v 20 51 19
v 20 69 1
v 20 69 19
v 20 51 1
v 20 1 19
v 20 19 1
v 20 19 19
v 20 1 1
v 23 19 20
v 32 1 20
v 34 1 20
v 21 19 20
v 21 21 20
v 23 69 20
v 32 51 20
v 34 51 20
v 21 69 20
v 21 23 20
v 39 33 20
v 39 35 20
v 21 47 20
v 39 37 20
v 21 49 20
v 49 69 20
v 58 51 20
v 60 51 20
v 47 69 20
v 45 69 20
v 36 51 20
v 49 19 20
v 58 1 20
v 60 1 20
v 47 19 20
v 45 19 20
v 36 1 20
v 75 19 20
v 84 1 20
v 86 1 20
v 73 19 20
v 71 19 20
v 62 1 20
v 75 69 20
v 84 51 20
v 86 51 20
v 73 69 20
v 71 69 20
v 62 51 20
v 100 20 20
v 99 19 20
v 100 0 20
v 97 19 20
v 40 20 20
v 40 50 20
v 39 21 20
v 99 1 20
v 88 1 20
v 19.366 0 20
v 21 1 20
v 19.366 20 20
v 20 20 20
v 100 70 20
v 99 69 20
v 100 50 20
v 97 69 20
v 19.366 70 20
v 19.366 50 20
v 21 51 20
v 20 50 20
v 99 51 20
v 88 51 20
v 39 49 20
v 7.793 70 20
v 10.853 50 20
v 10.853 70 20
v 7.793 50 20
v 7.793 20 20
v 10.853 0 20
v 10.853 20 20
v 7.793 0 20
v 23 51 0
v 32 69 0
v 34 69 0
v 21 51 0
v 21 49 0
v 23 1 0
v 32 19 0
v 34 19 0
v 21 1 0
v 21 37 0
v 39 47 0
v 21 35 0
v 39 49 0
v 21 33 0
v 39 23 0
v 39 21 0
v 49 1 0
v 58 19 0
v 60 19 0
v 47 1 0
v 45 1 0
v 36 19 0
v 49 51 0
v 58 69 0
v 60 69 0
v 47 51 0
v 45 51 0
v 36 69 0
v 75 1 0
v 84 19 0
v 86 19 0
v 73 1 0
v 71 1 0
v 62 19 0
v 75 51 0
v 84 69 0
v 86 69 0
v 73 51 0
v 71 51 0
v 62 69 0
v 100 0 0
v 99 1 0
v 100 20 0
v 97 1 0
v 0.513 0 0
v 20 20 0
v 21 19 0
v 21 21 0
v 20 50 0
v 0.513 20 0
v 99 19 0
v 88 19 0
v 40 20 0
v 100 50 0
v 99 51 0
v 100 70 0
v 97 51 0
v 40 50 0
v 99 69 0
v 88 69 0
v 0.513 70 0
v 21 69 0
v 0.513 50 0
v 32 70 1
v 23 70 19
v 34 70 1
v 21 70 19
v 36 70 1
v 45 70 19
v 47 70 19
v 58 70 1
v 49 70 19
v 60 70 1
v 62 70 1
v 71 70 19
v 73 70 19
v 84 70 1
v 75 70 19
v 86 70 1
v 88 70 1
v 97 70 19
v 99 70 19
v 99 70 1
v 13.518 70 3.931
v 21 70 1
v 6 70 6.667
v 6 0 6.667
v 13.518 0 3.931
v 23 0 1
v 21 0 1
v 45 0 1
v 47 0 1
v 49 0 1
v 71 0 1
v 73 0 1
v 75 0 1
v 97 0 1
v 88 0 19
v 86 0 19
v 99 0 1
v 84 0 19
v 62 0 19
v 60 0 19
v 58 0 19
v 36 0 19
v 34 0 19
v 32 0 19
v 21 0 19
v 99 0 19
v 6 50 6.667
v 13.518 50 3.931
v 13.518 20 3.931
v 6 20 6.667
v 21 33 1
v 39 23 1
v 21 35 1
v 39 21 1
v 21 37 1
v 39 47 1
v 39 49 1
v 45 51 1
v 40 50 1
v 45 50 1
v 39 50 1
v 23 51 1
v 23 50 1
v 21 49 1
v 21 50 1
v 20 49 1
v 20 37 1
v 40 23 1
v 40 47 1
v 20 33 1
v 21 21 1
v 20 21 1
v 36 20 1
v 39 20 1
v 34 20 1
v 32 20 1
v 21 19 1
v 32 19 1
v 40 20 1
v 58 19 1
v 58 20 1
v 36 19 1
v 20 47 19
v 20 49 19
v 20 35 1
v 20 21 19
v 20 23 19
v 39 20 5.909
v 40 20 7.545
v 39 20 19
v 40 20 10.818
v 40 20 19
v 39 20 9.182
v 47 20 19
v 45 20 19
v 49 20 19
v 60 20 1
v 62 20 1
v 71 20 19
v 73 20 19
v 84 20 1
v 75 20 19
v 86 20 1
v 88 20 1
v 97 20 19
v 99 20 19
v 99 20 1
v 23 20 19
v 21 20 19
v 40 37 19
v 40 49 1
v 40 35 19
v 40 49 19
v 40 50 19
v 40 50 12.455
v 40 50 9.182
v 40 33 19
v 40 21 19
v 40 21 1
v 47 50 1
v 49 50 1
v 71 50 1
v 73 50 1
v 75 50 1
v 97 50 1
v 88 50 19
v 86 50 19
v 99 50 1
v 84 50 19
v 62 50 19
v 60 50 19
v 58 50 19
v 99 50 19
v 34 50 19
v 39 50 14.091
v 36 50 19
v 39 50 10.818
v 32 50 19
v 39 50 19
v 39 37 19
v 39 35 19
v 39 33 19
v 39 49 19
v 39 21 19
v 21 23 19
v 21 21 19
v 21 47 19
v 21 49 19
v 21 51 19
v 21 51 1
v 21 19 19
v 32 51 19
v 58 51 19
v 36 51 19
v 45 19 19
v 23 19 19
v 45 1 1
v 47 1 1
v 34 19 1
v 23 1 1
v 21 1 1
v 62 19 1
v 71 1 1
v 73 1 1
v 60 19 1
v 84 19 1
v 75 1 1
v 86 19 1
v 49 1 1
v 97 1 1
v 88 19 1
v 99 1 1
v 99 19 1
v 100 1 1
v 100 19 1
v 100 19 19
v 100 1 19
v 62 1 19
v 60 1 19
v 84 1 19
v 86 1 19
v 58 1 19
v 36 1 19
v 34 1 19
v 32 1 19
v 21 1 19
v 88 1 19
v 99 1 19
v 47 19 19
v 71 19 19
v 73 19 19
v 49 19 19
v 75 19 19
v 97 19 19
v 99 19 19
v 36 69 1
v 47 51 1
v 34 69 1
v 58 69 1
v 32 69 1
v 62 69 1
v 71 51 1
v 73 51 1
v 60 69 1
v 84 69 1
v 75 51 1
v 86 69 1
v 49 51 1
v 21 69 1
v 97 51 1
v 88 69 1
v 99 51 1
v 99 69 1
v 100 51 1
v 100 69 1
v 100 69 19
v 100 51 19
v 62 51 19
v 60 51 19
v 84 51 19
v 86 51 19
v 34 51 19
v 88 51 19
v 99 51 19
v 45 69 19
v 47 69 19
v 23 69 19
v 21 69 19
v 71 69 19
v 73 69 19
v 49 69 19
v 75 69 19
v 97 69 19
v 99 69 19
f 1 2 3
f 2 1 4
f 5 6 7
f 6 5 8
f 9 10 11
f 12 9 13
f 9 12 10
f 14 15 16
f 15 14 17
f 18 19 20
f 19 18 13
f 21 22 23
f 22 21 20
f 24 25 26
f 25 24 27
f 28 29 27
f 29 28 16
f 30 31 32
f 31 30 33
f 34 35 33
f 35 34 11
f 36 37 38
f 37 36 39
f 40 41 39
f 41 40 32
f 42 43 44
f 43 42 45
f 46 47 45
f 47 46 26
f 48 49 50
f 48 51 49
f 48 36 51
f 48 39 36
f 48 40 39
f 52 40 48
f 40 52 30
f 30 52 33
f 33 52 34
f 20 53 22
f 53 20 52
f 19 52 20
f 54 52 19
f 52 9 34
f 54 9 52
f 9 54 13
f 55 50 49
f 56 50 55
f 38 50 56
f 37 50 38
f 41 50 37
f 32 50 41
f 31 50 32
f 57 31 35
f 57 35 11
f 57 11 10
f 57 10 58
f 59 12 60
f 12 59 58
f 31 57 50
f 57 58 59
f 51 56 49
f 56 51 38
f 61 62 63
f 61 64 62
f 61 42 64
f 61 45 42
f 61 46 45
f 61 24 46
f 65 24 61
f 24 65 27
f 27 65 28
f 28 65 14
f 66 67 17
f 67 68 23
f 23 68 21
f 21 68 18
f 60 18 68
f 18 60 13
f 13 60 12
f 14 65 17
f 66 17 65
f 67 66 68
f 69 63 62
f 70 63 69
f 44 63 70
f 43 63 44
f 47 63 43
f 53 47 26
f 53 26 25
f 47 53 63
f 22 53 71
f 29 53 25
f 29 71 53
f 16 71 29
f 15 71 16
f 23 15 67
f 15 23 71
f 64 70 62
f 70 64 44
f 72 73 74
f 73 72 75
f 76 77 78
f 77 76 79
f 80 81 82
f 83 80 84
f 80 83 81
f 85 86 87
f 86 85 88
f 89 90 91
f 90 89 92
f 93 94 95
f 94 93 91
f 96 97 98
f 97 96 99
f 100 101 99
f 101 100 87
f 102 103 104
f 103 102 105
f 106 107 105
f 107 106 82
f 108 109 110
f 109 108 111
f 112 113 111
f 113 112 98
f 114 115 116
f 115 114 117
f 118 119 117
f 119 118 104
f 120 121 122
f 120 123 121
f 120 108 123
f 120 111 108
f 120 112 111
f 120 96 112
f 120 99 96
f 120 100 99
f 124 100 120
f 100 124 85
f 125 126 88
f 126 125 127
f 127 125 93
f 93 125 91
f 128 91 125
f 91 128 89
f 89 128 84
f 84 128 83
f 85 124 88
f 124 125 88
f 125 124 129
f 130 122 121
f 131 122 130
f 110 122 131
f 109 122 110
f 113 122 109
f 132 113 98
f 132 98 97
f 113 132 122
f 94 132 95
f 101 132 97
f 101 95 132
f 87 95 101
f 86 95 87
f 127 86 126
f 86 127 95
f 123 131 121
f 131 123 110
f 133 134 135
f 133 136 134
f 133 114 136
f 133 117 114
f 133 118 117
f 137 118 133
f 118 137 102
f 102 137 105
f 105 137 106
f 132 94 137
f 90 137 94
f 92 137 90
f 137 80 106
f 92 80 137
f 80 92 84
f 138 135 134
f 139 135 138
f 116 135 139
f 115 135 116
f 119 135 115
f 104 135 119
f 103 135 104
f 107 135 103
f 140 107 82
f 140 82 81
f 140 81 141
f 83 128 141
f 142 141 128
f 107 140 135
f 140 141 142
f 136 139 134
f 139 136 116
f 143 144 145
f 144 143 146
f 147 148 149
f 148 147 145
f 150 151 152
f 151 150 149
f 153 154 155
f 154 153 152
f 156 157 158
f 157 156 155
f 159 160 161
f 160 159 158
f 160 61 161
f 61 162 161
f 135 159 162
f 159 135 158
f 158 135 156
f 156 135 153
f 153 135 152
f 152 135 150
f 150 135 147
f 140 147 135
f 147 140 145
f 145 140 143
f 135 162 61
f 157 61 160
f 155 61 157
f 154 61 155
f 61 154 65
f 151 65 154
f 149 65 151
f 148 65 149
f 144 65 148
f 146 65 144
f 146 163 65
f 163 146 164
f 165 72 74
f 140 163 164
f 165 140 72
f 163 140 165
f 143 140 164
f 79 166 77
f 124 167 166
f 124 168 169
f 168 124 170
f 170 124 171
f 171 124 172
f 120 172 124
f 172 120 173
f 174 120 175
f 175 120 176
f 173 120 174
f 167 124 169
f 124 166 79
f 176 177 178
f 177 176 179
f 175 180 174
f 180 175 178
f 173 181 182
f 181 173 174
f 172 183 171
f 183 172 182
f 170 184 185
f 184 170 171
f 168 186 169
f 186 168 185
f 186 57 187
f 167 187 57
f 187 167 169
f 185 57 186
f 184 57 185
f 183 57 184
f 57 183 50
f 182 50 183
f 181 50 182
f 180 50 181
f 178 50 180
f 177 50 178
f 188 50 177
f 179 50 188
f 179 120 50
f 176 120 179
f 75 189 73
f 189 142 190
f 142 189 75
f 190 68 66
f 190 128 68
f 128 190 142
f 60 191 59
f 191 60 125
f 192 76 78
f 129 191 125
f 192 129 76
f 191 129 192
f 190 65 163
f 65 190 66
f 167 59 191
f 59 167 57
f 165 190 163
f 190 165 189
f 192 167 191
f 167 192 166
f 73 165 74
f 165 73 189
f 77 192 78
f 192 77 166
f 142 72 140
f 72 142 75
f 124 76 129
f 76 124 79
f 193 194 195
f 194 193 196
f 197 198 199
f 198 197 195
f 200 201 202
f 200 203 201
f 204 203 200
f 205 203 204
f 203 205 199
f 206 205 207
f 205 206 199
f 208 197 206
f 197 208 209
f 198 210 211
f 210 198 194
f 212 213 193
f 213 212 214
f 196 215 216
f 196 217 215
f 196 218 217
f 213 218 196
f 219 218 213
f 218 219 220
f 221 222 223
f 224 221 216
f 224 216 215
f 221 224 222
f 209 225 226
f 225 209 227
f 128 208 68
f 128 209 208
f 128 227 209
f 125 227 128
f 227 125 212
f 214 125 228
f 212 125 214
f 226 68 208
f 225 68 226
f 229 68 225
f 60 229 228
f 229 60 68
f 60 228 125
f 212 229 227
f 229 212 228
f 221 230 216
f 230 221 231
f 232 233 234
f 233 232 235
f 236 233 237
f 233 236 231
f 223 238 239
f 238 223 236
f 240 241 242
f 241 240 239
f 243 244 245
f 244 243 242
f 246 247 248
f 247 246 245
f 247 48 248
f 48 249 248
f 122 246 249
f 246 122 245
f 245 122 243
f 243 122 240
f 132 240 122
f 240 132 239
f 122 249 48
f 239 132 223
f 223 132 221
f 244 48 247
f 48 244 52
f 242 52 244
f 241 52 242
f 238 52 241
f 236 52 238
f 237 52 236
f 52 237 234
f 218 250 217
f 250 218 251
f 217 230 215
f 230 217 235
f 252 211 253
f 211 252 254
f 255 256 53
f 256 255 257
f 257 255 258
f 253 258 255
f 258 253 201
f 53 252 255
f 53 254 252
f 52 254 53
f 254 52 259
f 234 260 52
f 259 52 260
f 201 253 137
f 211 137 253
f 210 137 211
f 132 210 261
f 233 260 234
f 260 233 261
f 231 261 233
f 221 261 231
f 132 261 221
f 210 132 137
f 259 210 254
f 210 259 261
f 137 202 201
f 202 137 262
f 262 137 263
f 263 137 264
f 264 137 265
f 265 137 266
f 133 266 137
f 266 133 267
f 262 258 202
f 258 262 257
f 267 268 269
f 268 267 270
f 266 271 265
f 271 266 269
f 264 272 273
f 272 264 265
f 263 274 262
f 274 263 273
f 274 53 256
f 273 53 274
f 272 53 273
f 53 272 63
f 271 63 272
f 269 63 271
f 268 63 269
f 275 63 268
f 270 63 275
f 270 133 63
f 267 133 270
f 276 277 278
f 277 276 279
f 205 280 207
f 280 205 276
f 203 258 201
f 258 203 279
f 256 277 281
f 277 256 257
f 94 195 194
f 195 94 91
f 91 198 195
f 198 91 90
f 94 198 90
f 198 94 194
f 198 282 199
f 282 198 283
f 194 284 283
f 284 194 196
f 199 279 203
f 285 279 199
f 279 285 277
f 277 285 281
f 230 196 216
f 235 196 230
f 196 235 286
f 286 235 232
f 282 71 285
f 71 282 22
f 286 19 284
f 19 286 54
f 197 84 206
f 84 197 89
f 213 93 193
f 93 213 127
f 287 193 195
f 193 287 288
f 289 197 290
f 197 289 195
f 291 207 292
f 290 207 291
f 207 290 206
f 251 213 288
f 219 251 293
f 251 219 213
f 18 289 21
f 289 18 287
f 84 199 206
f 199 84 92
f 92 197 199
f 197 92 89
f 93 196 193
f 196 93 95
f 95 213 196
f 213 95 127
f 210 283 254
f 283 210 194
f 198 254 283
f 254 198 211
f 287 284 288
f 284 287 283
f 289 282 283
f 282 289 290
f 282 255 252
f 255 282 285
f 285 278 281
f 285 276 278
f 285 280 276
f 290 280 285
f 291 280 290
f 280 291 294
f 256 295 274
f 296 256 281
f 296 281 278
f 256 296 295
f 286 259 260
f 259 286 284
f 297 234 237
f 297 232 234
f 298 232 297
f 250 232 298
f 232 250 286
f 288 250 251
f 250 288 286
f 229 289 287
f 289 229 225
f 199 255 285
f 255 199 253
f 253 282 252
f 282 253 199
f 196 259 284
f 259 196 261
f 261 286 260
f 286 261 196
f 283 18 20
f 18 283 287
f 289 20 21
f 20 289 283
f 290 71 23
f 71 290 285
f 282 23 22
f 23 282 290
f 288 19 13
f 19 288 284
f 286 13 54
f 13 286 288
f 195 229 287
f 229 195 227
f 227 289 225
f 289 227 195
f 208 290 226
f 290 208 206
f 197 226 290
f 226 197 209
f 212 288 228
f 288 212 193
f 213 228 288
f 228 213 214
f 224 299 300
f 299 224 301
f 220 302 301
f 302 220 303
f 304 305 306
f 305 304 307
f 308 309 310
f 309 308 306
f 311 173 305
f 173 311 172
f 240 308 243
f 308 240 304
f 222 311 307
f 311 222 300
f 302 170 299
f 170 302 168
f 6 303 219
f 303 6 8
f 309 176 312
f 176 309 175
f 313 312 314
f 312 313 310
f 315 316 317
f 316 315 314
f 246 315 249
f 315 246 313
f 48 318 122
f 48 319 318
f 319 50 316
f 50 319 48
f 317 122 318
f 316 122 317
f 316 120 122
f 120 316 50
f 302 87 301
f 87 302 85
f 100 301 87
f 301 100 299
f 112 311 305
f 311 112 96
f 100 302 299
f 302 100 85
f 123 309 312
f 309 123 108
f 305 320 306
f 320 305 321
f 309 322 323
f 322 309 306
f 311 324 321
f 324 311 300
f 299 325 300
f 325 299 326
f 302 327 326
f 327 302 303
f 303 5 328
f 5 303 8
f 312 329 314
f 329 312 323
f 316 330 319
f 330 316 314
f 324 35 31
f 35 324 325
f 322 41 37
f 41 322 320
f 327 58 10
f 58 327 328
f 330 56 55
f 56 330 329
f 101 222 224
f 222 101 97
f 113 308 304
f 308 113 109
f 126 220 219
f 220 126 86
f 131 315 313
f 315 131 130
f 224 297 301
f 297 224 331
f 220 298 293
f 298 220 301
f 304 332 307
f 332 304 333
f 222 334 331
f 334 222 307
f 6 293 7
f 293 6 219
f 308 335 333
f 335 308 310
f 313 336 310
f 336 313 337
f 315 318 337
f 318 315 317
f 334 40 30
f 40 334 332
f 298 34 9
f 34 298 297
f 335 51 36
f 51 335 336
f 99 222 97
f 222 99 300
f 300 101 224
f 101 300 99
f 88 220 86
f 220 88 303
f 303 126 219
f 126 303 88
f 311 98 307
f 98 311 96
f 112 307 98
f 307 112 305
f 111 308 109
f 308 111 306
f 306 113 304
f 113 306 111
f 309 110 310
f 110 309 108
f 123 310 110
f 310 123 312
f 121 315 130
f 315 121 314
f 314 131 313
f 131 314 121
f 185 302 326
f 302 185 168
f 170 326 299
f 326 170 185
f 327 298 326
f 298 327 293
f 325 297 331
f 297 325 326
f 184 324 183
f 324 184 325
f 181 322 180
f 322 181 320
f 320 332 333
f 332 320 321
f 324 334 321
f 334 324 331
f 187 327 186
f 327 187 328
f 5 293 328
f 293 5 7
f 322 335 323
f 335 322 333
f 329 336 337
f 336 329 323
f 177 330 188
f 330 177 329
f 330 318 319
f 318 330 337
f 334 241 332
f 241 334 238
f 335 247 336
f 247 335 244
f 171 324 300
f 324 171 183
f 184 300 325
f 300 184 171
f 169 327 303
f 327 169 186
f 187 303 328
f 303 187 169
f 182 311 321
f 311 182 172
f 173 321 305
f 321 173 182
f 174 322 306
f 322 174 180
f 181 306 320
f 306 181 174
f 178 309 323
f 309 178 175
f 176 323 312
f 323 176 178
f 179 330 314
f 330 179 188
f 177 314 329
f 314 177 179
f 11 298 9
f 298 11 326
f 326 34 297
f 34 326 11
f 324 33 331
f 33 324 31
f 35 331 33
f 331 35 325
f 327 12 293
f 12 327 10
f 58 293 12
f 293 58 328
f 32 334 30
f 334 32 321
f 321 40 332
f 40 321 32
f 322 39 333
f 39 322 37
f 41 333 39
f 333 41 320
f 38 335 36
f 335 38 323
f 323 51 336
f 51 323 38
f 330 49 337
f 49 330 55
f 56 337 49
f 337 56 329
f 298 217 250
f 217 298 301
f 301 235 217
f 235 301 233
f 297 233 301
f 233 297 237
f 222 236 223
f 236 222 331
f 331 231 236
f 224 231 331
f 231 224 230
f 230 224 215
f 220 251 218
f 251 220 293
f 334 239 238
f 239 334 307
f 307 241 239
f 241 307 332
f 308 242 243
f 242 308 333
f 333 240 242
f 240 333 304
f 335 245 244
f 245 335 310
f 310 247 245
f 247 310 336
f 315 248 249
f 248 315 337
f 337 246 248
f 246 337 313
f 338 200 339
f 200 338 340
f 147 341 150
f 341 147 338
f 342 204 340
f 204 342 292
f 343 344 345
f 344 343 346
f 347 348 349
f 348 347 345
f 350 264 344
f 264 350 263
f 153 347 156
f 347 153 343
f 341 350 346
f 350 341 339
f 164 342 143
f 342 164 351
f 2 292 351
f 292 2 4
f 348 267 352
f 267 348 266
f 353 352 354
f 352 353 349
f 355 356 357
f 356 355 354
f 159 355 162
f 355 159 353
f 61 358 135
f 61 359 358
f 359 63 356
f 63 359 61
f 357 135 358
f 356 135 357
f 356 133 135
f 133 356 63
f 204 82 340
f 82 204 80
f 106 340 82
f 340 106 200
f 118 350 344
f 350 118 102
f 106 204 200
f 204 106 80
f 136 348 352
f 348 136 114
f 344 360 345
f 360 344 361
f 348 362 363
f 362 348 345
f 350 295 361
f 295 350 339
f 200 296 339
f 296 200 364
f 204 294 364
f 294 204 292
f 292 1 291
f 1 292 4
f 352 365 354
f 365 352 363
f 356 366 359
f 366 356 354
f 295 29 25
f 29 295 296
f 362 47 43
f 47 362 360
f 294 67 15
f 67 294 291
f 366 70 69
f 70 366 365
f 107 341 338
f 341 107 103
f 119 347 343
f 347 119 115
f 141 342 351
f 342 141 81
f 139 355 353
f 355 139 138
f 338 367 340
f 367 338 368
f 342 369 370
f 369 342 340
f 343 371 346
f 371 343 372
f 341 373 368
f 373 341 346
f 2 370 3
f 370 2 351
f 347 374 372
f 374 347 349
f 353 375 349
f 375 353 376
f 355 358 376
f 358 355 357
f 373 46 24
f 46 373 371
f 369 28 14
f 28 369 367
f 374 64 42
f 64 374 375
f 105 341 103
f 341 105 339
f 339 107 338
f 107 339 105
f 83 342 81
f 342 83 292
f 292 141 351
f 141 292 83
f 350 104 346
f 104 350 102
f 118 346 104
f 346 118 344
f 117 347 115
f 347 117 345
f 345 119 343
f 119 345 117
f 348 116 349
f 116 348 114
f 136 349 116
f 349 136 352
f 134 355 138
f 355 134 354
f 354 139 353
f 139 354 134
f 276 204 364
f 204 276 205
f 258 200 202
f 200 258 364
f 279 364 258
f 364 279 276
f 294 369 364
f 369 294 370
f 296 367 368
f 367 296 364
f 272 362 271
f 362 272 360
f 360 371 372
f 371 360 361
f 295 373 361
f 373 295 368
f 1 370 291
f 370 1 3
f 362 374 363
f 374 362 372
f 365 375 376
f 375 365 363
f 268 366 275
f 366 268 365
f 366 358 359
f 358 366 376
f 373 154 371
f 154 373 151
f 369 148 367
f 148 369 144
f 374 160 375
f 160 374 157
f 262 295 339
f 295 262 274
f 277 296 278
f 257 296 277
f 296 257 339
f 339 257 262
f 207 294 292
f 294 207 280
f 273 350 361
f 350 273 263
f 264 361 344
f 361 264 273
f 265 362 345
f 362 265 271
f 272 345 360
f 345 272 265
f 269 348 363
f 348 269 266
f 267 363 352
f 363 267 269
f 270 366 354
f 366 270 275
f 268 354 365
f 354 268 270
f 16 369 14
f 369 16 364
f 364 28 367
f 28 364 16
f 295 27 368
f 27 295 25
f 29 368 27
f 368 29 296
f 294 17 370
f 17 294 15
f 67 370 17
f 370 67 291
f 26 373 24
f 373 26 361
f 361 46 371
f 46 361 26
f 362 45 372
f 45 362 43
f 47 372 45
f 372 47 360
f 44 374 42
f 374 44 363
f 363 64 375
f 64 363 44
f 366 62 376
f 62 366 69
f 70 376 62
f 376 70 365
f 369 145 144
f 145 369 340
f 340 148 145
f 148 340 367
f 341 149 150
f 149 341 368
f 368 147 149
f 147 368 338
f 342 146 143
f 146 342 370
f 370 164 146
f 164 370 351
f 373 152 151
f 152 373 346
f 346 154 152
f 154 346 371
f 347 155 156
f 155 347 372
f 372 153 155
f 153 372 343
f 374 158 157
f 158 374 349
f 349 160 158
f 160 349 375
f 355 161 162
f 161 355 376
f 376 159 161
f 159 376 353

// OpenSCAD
// file: truss_beam.scad
module triangle(width, height) {
  points = [
    [0, 0],
    [0, height],
    [width, 0]
  ];
  polygon(points);
}

module tri_sep_square(width, height, sep_width) {
  triangle(width, height);
  translate([width + sep_width, height, 0]) {
    rotate(180) {
      triangle(width, height);
    }
  }
}

module repeating_triangles(width, height, sep_width, num_triangles) {
  assert(num_triangles % 2 == 0, "num_triangles must be even!");
  for (i = [1 : 2 : num_triangles]) {
    translate([i * (width + sep_width), 0, 0]) {
      tri_sep_square(width, height, sep_width);
      mirror([1, 0, 0]) {
        tri_sep_square(width, height, sep_width);
      }
    }
  }
}

module tri_beam(width, height, sep_width, num_triangles) {
  width_without_sep = width - (sep_width * num_triangles);
  triangle_width = width_without_sep / num_triangles;
  repeating_triangles(triangle_width, height, sep_width, num_triangles);
}

module truss(width, height, sep_width, num_triangles) {
  strut_thickness = sep_width / 2;
  beam_height = height - strut_thickness * 2;
  beam_width = width - strut_thickness * 2;
  difference() {
    square([beam_width + 2 * strut_thickness, beam_height + 2 * strut_thickness]);
    translate([strut_thickness, strut_thickness, 0]) {
      tri_beam(beam_width, beam_height, sep_width, num_triangles);
    }
  }
}

module truss_3d(width, height, sep_width, num_triangles) {
  linear_extrude(sep_width / 2) {
    truss(width, height, sep_width, num_triangles);
  }
}

module truss_beam(width, height, sep_width, num_triangles) {
  truss_3d(width, height, sep_width, num_triangles);
  translate([0, sep_width / 2, 0]) {
    rotate([90, 0, 0]) {
      truss_3d(width, height, sep_width, num_triangles);
    }
  }
  translate([0, height, height]) {
    rotate([180, 0, 0]) {
      truss_3d(width, height, sep_width, num_triangles);
    }
  }
  translate([0, height - sep_width / 2, height]) {
    rotate([270, 0, 0]) {
      truss_3d(width, height, sep_width, num_triangles);
    }
  }
}
// main file
use <truss_beam.scad>

module phone_holder(width, height, depth) {

  module holding_bit(phone_thickness) {
    difference() {
      cube([height, width, height]);
      translate([0 - 0.1, height, 0 - 0.1]) {
        cube([height + 0.2, width - (height * 2), height + 0.2]);
      }
      translate([height / 2 - phone_thickness / 2, 0 - 0.1, height / 3]) {
        rotate([0, 20, 0]) {
          cube([phone_thickness, 100, 100]);
        }
      }
      translate([-phone_thickness, 0 - 0.1, 0]) {
        rotate([0, 20, 0]) {
          cube([phone_thickness, 100, 100]);
        }
      }
    }
  }

  holding_bit(8);
  //truss_beam(60, 20, 2, 6);
  translate([height * 2, height, 0,]) {
    rotate([0, 0, 90]) {
      truss_beam(width - height * 2, height, 2, 2);
    }
  }
  translate([height, 0, 0]) {
    truss_beam(depth, height, 2, 6);
  }
  translate([height, width - height, 0]) {
    truss_beam(depth, height, 2, 6);
  }
}

phone_holder(70, 20, 80);
